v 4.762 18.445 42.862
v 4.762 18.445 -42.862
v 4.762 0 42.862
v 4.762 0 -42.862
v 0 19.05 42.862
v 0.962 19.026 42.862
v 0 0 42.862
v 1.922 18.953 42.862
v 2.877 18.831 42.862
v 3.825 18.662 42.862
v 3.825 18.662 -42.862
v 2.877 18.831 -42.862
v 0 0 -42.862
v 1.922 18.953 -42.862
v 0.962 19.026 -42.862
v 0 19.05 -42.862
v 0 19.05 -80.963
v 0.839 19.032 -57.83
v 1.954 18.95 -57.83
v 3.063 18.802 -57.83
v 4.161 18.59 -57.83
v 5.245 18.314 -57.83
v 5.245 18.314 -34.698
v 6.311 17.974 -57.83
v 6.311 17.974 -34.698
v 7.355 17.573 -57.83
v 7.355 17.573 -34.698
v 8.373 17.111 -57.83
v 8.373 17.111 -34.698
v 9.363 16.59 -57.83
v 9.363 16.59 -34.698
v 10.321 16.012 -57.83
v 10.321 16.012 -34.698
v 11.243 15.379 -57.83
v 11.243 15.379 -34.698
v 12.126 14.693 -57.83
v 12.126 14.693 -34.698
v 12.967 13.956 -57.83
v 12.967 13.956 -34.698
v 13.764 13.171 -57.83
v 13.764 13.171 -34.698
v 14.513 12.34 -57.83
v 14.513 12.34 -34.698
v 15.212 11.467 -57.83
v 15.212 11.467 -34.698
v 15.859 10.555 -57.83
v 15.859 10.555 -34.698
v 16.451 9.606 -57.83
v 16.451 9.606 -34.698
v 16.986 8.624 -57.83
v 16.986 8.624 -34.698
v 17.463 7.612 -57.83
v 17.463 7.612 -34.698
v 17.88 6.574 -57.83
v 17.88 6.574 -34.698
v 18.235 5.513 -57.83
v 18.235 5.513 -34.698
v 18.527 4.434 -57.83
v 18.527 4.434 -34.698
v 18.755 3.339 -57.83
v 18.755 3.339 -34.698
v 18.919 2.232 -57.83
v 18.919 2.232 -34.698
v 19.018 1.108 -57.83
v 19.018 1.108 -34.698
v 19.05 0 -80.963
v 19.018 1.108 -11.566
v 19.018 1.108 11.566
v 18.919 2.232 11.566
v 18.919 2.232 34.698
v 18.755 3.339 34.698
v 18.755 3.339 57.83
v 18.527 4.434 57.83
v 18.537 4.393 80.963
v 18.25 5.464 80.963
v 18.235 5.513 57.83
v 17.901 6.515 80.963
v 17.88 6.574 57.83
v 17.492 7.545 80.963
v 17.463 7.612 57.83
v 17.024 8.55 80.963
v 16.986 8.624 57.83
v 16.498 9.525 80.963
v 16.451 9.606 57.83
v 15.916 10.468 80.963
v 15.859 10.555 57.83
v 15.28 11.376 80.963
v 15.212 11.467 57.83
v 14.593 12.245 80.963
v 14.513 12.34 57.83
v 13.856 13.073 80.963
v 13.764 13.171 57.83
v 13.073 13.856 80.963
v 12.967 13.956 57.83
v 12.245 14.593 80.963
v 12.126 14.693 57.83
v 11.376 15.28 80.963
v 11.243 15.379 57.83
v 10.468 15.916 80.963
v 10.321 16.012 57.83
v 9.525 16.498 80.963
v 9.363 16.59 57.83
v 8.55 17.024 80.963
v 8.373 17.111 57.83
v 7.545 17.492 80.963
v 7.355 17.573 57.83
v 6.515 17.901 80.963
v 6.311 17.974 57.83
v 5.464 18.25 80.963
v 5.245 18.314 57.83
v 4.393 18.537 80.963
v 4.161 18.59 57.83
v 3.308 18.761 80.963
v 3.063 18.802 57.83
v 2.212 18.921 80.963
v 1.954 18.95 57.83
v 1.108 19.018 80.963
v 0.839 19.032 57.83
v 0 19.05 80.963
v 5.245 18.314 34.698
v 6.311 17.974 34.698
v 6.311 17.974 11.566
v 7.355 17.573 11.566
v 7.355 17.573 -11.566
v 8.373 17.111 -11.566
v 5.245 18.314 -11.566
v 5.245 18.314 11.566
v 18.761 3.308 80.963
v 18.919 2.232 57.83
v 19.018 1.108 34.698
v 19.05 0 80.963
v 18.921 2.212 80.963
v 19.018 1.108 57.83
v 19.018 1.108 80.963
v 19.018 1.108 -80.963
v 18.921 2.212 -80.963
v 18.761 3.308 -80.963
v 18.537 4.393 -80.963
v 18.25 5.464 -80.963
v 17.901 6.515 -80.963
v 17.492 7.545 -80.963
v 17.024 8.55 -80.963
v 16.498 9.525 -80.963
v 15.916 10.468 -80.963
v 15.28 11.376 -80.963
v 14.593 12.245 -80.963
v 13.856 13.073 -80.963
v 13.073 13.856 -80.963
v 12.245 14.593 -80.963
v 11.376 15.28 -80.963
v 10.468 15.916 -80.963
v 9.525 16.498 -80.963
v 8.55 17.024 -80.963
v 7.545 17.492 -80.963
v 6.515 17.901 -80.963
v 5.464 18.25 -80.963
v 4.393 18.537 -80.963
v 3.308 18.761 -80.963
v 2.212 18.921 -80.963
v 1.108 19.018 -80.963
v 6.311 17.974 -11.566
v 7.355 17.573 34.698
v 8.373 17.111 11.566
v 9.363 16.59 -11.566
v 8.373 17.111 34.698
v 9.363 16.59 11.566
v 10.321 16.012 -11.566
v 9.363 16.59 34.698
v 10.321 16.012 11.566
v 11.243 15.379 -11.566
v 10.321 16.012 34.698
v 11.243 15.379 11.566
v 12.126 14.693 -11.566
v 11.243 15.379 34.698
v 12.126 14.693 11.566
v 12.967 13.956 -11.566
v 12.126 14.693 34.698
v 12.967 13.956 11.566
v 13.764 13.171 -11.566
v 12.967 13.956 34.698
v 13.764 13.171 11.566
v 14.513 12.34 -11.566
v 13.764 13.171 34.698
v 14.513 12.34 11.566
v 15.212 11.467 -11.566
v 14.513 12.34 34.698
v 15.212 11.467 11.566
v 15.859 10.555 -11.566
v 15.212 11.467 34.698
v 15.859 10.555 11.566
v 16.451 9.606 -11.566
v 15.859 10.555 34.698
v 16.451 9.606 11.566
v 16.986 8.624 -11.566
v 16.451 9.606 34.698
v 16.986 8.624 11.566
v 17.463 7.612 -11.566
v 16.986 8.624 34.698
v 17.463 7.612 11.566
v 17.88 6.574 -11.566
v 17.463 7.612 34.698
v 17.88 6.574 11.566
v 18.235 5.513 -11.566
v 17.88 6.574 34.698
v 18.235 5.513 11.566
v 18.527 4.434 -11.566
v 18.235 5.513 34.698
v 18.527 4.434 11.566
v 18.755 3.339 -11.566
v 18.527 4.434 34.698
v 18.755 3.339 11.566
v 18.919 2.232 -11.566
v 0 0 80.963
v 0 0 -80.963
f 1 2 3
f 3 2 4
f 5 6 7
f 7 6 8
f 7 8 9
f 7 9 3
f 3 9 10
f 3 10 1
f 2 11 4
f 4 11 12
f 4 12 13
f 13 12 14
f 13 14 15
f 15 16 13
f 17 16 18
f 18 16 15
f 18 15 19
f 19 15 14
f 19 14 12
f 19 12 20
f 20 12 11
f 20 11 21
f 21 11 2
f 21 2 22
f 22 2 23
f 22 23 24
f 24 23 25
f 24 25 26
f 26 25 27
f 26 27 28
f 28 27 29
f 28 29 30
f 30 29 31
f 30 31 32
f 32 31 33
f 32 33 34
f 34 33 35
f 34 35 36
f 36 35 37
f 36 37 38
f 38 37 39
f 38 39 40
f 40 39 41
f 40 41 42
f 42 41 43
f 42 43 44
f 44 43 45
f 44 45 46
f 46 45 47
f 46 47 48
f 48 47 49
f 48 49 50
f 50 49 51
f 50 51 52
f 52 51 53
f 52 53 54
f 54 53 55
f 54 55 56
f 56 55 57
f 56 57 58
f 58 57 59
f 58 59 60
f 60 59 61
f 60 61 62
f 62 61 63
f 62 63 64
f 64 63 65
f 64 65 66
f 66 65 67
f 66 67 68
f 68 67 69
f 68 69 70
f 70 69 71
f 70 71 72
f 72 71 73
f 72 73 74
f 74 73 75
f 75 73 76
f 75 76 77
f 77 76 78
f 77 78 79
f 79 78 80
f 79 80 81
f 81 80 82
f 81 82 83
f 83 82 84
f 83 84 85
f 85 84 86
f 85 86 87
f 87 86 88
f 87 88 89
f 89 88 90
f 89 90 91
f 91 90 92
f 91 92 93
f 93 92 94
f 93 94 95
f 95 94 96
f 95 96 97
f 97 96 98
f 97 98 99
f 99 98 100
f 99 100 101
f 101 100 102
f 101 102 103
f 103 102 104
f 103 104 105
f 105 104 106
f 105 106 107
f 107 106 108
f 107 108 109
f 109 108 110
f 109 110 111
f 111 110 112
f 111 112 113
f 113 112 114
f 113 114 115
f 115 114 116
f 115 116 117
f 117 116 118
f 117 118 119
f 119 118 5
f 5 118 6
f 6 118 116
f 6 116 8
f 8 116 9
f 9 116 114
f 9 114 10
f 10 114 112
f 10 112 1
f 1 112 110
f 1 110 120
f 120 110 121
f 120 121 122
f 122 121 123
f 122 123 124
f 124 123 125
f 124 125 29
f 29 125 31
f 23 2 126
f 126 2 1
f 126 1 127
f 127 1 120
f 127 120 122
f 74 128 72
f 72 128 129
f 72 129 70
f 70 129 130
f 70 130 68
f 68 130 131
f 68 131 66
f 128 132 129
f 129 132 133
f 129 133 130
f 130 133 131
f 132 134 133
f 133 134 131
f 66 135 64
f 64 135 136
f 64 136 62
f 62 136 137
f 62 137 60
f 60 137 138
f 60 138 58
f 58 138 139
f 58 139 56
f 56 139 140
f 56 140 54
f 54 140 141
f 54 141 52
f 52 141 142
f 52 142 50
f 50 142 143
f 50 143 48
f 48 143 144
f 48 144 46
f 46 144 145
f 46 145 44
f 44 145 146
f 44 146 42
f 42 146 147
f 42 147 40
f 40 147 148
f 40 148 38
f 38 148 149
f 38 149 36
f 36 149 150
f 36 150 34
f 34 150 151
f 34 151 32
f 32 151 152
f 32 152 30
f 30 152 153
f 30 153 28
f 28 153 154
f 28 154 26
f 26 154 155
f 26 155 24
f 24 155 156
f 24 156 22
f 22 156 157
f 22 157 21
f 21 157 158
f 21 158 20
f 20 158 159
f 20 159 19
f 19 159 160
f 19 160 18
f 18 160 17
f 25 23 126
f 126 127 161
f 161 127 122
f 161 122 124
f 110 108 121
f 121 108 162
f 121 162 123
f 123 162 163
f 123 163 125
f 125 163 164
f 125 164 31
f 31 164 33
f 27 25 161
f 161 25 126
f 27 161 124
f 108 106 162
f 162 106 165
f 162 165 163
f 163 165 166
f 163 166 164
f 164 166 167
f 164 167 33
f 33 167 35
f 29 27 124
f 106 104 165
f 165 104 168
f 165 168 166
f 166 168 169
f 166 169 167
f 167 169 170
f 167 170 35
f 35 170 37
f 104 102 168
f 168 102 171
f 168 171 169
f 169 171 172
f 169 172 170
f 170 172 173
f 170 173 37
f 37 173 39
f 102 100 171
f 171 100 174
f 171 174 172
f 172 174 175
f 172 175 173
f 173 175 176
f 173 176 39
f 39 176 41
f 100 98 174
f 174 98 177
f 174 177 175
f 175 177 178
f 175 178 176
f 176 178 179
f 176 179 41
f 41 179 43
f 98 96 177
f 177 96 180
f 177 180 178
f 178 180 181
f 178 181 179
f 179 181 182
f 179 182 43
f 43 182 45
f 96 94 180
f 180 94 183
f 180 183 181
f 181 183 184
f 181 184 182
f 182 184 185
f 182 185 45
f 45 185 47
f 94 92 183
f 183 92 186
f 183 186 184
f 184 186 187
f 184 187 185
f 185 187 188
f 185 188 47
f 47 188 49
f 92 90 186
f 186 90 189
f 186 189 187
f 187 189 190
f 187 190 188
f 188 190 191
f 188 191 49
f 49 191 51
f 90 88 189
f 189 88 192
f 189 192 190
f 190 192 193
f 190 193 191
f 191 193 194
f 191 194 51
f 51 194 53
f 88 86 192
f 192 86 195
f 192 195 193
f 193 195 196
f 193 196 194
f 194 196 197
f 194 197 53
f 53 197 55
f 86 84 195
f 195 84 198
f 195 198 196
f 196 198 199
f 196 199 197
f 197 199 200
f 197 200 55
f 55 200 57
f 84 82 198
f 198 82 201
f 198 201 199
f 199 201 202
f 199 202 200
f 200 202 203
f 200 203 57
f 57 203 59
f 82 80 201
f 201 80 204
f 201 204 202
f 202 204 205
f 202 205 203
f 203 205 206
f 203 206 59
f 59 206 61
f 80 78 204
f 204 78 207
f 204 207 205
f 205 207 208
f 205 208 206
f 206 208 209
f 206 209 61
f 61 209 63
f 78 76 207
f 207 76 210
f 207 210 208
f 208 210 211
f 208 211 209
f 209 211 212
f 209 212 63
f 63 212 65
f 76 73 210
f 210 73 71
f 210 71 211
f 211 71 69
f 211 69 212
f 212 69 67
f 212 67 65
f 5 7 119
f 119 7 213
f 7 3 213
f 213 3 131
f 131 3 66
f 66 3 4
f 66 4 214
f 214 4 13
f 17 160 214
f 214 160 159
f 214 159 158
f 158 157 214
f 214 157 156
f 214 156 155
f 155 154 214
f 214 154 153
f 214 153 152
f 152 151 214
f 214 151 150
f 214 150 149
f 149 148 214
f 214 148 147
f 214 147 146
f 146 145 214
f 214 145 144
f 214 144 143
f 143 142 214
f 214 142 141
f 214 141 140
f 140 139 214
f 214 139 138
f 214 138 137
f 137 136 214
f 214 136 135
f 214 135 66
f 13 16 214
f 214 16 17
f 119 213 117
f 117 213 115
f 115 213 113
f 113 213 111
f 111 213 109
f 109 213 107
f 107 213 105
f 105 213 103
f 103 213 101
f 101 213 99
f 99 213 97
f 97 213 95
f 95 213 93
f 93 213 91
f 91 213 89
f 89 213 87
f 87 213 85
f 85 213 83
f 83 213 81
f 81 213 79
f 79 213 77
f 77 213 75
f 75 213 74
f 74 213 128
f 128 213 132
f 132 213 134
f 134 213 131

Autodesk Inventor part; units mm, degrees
ref_plane "YZ Plane" through (0, 0, 0) normal (1, 0, 0) x (0, 1, 0)
ref_plane "XZ Plane" through (0, 0, 0) normal (0, 1, 0) x (-1, 0, 0)
ref_plane "XY Plane" through (0, 0, 0) normal (0, 0, 1) x (1, 0, 0)
sketch "Sketch1" plane through (0, 0, 0) normal (0, 0, 1) x (1, 0, 0)
  arc A0 (19.05, 0) -> (0, 19.05) centre (0, 0) ccw
  line L0 (0, 19.05) -> (0, 0)
  line L1 (0, 0) -> (19.05, 0)
  dimension "d0" = 38.1
extrude "Extrusion1" add sketch "Sketch1" along normal mid plane 161.925
sketch "Sketch2" plane through (0, 0, 80.9625) normal (0, -1, 0) x (1, 0, 0)
  line L0 (0, -38.1) -> (4.7625, -38.1)
  line L1 (4.7625, -38.1) -> (4.7625, -123.825)
  line L2 (4.7625, -123.825) -> (0, -123.825)
  line L3 (0, -123.825) -> (0, -38.1)
  line L4 (19.05, -161.925) -> (0, -161.925) projected
  line L5 (0, -161.925) -> (0, 0) projected
  point P0 (0, -80.9625)
  dimension "d3" = 85.725
  dimension "d4" = 38.1
  dimension "d5" = 4.7625
extrude "Extrusion2" cut sketch "Sketch2" against normal through all
equation "\"d0\" = cornerRoundType"
equation "\"d1\" = lengthOfPart"
equation "\"d3\" = notchCutout"
equation "\"d4\" = bottomLength"
equation "\"d5\" = notchDepth"
equation "\"cornerRoundType\" = 38.1"
equation "\"notchCutout\" = 85.725"
equation "\"bottomLength\" = 38.1"
equation "\"lengthOfPart\" = 2 * bottomLength + notchCutout"
equation "\"notchDepth\" = 4.7625"
properties part number "topOfStairs_01875_notch"
